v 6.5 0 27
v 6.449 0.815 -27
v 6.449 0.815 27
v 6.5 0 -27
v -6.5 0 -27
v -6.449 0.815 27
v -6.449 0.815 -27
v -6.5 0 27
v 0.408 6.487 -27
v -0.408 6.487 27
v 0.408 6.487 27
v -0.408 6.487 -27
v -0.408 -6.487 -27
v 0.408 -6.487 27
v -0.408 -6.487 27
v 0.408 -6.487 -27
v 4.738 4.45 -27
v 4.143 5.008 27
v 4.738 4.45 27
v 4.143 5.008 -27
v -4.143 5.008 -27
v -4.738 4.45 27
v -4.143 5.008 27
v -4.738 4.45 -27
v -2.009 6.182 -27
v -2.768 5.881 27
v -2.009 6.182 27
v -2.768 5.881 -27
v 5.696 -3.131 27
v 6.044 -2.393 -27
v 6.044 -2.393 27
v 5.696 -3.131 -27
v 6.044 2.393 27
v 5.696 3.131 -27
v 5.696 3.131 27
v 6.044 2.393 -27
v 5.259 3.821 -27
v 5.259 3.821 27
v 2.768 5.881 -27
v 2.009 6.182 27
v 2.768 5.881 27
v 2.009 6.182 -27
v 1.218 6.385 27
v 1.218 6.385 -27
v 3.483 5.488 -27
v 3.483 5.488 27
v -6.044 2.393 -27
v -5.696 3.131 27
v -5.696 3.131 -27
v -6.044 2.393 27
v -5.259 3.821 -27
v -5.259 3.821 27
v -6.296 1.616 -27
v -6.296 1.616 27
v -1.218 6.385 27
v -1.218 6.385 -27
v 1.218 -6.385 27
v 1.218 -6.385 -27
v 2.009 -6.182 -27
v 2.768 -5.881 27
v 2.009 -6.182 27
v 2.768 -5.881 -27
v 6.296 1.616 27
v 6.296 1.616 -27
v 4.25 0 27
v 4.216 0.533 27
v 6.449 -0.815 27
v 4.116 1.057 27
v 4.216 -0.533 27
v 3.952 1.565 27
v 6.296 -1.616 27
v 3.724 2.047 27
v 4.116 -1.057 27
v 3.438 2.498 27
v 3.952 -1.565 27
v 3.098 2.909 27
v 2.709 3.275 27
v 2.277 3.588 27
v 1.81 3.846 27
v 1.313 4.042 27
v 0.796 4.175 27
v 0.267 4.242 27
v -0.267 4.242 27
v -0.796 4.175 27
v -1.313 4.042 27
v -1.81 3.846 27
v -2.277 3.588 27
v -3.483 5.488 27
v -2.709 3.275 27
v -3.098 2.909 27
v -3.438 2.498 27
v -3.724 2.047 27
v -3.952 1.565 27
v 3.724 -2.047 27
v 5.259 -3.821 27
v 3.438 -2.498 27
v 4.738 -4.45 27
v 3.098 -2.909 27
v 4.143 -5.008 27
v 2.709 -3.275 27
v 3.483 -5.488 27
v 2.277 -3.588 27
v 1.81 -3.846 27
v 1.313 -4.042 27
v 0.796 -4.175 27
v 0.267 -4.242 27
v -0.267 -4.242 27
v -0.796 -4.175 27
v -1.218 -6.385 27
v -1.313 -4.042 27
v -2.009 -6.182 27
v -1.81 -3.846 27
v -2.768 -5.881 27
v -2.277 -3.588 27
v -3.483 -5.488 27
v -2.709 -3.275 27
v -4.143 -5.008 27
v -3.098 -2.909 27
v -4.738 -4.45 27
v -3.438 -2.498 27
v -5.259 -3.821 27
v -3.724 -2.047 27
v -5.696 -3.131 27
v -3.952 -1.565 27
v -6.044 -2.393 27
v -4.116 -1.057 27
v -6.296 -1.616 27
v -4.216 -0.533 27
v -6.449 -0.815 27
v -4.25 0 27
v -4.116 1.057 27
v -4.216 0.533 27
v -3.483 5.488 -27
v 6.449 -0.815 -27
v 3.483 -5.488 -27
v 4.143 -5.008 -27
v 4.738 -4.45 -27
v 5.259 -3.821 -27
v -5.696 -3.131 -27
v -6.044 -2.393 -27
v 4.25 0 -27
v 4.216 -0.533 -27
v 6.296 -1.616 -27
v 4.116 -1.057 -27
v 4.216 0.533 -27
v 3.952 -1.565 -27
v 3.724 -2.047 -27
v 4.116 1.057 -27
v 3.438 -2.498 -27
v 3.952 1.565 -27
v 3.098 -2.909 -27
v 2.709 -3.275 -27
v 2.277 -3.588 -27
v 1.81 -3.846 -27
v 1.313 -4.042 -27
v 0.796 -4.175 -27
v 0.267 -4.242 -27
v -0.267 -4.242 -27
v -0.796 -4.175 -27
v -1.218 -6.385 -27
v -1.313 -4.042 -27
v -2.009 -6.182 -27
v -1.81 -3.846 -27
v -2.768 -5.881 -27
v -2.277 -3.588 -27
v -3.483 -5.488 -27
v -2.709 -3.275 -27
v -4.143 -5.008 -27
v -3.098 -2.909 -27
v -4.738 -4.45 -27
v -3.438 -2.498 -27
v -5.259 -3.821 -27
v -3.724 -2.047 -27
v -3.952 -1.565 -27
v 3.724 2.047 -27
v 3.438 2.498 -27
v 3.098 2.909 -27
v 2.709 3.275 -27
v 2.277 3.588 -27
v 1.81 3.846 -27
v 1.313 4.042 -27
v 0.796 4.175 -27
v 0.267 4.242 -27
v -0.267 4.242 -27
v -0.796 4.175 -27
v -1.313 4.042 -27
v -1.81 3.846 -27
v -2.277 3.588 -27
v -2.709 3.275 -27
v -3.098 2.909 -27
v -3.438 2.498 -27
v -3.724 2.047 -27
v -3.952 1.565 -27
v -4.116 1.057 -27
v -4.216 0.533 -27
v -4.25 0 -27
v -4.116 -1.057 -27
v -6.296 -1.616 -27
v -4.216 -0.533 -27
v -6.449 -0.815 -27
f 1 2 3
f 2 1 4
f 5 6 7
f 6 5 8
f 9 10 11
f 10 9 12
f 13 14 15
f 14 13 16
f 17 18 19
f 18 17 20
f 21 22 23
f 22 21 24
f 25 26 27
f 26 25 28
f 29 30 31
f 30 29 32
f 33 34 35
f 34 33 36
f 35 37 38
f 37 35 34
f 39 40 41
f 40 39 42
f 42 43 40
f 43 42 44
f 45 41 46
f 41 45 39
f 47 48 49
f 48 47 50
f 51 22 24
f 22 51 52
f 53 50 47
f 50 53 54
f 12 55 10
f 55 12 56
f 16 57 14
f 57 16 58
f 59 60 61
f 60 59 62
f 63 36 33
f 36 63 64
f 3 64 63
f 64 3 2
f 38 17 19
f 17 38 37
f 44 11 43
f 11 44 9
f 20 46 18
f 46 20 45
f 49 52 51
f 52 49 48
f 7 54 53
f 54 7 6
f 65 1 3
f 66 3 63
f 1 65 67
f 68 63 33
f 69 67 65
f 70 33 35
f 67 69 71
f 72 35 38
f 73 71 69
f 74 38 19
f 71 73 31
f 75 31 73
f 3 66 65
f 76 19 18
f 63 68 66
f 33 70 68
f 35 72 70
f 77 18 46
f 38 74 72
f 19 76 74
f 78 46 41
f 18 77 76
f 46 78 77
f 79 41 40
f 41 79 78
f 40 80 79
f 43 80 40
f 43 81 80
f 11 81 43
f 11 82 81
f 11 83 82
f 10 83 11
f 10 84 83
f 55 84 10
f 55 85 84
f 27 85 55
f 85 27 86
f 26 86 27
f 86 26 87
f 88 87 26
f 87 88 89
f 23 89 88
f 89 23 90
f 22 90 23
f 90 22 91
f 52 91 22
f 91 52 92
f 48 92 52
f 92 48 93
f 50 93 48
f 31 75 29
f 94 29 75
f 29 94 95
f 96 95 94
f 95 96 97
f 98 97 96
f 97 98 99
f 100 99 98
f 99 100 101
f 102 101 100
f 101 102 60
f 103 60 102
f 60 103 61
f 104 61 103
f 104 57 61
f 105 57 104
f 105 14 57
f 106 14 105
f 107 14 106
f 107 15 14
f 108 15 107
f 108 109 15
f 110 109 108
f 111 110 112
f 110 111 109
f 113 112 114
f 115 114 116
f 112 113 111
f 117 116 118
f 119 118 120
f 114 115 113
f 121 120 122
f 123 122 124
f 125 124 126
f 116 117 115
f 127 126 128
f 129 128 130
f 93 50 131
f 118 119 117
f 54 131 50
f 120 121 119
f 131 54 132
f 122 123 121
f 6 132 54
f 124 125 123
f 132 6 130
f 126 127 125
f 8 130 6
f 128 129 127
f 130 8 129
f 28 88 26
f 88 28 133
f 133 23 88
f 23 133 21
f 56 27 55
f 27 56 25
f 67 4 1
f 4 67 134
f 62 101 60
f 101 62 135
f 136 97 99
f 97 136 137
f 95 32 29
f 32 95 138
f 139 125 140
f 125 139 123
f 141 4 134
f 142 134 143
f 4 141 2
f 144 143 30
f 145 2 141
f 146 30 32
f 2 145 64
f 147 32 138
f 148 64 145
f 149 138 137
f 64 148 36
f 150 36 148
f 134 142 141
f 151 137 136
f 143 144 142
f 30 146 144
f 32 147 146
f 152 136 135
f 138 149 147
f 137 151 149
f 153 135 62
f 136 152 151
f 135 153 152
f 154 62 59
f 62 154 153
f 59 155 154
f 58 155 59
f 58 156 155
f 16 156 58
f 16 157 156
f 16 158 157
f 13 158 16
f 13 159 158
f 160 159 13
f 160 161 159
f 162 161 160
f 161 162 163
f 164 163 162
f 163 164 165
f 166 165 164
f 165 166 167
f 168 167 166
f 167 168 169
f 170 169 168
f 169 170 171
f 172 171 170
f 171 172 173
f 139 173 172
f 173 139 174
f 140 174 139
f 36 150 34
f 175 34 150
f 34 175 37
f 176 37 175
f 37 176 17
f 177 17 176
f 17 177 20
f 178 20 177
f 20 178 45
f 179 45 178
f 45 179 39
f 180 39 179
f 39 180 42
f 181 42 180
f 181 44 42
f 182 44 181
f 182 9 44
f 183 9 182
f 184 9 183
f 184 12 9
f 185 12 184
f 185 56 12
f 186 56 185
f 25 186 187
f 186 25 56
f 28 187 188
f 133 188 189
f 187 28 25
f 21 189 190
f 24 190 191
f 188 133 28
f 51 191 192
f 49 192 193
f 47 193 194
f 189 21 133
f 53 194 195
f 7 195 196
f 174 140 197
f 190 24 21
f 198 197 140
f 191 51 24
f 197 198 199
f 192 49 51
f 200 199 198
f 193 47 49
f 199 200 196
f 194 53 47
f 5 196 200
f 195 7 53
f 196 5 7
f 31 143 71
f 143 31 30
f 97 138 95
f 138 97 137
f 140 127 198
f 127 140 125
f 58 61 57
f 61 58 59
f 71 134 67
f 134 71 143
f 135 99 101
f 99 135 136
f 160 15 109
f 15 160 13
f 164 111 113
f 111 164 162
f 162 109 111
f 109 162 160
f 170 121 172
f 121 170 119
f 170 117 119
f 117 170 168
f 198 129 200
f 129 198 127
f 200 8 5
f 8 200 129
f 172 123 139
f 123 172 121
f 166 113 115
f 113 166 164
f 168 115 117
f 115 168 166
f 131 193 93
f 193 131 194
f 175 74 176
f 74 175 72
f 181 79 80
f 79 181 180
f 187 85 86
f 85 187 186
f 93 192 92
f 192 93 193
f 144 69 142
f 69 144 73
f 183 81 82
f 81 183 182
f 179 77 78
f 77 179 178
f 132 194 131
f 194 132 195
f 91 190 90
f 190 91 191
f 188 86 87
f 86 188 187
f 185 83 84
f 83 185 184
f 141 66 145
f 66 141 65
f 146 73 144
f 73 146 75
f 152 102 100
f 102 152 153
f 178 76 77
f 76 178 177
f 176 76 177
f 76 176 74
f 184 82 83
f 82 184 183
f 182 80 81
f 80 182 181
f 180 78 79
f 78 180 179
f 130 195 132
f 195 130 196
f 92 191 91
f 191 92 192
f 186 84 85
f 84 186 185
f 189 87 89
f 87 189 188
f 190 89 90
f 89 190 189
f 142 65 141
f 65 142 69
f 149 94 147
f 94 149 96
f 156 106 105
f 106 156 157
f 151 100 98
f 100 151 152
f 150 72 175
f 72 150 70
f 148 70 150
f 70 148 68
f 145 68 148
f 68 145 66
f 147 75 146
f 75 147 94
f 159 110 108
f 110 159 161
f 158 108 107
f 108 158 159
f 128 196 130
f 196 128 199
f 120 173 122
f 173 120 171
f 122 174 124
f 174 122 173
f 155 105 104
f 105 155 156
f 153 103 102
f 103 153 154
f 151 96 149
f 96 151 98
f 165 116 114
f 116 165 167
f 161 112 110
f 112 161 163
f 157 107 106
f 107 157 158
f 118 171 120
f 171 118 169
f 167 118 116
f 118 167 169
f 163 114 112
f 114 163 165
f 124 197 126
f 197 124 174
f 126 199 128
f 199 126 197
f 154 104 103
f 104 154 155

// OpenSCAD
$fn = 50;


difference() {
	union() {
		translate(v = [0, 0, -27.0000000000]) {
			cylinder(h = 54, r = 6.5000000000);
		}
	}
	union() {
		translate(v = [0, 0, -100.0000000000]) {
			cylinder(h = 200, r = 4.2500000000);
		}
	}
}
